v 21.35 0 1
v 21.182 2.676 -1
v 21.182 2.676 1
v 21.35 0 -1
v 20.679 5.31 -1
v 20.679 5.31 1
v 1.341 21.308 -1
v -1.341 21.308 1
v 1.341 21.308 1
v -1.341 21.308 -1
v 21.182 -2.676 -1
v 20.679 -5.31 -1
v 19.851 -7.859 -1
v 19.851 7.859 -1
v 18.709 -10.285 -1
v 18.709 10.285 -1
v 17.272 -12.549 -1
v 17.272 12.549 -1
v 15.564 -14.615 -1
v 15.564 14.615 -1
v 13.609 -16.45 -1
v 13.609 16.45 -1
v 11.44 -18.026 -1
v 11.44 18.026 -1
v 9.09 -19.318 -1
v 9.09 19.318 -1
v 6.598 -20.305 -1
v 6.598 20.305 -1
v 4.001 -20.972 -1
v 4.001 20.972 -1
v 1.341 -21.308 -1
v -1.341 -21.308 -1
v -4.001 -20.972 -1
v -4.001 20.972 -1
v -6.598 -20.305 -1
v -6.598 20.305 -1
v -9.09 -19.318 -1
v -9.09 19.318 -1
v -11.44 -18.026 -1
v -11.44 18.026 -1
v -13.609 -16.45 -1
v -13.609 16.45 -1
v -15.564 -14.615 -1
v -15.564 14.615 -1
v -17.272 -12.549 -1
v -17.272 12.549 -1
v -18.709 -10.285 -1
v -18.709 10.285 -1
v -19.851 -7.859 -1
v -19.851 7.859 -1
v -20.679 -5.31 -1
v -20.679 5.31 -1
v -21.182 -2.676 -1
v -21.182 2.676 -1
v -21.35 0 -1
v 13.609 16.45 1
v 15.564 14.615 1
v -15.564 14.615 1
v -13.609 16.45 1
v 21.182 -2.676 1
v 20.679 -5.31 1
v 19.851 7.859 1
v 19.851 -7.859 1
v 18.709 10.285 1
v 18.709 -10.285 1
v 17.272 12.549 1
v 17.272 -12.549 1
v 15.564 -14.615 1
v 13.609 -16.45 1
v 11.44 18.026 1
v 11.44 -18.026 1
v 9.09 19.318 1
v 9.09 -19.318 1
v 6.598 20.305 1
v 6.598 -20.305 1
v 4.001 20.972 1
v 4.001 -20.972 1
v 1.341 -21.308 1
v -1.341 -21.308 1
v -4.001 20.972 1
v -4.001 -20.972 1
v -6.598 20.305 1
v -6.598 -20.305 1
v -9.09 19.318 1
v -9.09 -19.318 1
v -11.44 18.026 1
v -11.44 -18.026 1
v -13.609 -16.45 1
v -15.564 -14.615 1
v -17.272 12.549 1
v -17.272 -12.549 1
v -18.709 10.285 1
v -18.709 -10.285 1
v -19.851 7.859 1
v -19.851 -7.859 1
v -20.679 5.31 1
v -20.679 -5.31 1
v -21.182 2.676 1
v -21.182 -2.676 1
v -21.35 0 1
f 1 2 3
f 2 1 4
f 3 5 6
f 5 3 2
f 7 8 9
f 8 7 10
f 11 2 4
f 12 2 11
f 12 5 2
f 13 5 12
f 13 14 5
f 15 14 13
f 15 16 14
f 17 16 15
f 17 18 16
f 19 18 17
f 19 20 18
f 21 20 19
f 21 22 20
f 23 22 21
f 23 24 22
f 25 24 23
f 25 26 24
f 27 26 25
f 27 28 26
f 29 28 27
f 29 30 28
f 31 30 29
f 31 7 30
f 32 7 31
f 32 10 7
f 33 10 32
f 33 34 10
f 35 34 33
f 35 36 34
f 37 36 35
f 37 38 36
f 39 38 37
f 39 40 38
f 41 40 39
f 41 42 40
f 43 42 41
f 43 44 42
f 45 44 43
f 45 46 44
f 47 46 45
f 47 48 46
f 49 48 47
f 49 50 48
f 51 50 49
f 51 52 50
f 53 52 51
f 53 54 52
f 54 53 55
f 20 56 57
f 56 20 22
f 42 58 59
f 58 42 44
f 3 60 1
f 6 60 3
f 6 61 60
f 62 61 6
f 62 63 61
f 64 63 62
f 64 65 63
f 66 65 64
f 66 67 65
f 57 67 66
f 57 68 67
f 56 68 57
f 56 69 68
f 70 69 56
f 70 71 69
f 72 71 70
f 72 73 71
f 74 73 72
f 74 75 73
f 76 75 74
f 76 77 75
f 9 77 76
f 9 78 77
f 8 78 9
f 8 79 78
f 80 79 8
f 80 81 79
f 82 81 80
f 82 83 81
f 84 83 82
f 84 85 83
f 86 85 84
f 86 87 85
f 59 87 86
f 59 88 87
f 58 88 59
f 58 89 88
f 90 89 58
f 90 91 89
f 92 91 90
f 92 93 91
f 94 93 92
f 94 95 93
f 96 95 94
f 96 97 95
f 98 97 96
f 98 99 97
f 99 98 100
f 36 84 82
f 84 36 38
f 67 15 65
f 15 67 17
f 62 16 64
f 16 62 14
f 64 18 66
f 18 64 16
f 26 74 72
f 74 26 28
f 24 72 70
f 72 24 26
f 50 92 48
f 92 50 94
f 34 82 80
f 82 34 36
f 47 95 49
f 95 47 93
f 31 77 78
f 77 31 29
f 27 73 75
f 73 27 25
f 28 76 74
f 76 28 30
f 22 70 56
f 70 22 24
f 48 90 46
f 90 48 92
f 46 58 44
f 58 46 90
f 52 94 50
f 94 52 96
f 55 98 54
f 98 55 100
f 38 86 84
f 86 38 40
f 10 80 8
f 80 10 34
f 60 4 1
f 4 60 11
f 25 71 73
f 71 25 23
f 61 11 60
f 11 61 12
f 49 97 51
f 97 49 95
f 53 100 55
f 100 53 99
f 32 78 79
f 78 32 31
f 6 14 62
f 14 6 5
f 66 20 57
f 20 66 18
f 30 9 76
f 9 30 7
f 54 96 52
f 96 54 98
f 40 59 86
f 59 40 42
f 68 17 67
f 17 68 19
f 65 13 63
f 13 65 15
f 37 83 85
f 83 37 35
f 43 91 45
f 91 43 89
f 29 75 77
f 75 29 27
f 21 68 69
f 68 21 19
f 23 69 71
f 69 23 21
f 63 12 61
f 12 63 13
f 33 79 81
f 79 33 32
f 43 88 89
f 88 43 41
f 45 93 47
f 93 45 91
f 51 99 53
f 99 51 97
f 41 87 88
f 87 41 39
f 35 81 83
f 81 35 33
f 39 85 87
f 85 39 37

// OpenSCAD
$fn = 50;


difference() {
	union() {
		translate(v = [0, 0, -1.0000000000]) {
			cylinder(h = 2, r = 21.3500000000);
		}
	}
	union() {
		translate(v = [0, 0, -100.0000000000]) {
			cylinder(h = 200, r = 0);
		}
	}
}
